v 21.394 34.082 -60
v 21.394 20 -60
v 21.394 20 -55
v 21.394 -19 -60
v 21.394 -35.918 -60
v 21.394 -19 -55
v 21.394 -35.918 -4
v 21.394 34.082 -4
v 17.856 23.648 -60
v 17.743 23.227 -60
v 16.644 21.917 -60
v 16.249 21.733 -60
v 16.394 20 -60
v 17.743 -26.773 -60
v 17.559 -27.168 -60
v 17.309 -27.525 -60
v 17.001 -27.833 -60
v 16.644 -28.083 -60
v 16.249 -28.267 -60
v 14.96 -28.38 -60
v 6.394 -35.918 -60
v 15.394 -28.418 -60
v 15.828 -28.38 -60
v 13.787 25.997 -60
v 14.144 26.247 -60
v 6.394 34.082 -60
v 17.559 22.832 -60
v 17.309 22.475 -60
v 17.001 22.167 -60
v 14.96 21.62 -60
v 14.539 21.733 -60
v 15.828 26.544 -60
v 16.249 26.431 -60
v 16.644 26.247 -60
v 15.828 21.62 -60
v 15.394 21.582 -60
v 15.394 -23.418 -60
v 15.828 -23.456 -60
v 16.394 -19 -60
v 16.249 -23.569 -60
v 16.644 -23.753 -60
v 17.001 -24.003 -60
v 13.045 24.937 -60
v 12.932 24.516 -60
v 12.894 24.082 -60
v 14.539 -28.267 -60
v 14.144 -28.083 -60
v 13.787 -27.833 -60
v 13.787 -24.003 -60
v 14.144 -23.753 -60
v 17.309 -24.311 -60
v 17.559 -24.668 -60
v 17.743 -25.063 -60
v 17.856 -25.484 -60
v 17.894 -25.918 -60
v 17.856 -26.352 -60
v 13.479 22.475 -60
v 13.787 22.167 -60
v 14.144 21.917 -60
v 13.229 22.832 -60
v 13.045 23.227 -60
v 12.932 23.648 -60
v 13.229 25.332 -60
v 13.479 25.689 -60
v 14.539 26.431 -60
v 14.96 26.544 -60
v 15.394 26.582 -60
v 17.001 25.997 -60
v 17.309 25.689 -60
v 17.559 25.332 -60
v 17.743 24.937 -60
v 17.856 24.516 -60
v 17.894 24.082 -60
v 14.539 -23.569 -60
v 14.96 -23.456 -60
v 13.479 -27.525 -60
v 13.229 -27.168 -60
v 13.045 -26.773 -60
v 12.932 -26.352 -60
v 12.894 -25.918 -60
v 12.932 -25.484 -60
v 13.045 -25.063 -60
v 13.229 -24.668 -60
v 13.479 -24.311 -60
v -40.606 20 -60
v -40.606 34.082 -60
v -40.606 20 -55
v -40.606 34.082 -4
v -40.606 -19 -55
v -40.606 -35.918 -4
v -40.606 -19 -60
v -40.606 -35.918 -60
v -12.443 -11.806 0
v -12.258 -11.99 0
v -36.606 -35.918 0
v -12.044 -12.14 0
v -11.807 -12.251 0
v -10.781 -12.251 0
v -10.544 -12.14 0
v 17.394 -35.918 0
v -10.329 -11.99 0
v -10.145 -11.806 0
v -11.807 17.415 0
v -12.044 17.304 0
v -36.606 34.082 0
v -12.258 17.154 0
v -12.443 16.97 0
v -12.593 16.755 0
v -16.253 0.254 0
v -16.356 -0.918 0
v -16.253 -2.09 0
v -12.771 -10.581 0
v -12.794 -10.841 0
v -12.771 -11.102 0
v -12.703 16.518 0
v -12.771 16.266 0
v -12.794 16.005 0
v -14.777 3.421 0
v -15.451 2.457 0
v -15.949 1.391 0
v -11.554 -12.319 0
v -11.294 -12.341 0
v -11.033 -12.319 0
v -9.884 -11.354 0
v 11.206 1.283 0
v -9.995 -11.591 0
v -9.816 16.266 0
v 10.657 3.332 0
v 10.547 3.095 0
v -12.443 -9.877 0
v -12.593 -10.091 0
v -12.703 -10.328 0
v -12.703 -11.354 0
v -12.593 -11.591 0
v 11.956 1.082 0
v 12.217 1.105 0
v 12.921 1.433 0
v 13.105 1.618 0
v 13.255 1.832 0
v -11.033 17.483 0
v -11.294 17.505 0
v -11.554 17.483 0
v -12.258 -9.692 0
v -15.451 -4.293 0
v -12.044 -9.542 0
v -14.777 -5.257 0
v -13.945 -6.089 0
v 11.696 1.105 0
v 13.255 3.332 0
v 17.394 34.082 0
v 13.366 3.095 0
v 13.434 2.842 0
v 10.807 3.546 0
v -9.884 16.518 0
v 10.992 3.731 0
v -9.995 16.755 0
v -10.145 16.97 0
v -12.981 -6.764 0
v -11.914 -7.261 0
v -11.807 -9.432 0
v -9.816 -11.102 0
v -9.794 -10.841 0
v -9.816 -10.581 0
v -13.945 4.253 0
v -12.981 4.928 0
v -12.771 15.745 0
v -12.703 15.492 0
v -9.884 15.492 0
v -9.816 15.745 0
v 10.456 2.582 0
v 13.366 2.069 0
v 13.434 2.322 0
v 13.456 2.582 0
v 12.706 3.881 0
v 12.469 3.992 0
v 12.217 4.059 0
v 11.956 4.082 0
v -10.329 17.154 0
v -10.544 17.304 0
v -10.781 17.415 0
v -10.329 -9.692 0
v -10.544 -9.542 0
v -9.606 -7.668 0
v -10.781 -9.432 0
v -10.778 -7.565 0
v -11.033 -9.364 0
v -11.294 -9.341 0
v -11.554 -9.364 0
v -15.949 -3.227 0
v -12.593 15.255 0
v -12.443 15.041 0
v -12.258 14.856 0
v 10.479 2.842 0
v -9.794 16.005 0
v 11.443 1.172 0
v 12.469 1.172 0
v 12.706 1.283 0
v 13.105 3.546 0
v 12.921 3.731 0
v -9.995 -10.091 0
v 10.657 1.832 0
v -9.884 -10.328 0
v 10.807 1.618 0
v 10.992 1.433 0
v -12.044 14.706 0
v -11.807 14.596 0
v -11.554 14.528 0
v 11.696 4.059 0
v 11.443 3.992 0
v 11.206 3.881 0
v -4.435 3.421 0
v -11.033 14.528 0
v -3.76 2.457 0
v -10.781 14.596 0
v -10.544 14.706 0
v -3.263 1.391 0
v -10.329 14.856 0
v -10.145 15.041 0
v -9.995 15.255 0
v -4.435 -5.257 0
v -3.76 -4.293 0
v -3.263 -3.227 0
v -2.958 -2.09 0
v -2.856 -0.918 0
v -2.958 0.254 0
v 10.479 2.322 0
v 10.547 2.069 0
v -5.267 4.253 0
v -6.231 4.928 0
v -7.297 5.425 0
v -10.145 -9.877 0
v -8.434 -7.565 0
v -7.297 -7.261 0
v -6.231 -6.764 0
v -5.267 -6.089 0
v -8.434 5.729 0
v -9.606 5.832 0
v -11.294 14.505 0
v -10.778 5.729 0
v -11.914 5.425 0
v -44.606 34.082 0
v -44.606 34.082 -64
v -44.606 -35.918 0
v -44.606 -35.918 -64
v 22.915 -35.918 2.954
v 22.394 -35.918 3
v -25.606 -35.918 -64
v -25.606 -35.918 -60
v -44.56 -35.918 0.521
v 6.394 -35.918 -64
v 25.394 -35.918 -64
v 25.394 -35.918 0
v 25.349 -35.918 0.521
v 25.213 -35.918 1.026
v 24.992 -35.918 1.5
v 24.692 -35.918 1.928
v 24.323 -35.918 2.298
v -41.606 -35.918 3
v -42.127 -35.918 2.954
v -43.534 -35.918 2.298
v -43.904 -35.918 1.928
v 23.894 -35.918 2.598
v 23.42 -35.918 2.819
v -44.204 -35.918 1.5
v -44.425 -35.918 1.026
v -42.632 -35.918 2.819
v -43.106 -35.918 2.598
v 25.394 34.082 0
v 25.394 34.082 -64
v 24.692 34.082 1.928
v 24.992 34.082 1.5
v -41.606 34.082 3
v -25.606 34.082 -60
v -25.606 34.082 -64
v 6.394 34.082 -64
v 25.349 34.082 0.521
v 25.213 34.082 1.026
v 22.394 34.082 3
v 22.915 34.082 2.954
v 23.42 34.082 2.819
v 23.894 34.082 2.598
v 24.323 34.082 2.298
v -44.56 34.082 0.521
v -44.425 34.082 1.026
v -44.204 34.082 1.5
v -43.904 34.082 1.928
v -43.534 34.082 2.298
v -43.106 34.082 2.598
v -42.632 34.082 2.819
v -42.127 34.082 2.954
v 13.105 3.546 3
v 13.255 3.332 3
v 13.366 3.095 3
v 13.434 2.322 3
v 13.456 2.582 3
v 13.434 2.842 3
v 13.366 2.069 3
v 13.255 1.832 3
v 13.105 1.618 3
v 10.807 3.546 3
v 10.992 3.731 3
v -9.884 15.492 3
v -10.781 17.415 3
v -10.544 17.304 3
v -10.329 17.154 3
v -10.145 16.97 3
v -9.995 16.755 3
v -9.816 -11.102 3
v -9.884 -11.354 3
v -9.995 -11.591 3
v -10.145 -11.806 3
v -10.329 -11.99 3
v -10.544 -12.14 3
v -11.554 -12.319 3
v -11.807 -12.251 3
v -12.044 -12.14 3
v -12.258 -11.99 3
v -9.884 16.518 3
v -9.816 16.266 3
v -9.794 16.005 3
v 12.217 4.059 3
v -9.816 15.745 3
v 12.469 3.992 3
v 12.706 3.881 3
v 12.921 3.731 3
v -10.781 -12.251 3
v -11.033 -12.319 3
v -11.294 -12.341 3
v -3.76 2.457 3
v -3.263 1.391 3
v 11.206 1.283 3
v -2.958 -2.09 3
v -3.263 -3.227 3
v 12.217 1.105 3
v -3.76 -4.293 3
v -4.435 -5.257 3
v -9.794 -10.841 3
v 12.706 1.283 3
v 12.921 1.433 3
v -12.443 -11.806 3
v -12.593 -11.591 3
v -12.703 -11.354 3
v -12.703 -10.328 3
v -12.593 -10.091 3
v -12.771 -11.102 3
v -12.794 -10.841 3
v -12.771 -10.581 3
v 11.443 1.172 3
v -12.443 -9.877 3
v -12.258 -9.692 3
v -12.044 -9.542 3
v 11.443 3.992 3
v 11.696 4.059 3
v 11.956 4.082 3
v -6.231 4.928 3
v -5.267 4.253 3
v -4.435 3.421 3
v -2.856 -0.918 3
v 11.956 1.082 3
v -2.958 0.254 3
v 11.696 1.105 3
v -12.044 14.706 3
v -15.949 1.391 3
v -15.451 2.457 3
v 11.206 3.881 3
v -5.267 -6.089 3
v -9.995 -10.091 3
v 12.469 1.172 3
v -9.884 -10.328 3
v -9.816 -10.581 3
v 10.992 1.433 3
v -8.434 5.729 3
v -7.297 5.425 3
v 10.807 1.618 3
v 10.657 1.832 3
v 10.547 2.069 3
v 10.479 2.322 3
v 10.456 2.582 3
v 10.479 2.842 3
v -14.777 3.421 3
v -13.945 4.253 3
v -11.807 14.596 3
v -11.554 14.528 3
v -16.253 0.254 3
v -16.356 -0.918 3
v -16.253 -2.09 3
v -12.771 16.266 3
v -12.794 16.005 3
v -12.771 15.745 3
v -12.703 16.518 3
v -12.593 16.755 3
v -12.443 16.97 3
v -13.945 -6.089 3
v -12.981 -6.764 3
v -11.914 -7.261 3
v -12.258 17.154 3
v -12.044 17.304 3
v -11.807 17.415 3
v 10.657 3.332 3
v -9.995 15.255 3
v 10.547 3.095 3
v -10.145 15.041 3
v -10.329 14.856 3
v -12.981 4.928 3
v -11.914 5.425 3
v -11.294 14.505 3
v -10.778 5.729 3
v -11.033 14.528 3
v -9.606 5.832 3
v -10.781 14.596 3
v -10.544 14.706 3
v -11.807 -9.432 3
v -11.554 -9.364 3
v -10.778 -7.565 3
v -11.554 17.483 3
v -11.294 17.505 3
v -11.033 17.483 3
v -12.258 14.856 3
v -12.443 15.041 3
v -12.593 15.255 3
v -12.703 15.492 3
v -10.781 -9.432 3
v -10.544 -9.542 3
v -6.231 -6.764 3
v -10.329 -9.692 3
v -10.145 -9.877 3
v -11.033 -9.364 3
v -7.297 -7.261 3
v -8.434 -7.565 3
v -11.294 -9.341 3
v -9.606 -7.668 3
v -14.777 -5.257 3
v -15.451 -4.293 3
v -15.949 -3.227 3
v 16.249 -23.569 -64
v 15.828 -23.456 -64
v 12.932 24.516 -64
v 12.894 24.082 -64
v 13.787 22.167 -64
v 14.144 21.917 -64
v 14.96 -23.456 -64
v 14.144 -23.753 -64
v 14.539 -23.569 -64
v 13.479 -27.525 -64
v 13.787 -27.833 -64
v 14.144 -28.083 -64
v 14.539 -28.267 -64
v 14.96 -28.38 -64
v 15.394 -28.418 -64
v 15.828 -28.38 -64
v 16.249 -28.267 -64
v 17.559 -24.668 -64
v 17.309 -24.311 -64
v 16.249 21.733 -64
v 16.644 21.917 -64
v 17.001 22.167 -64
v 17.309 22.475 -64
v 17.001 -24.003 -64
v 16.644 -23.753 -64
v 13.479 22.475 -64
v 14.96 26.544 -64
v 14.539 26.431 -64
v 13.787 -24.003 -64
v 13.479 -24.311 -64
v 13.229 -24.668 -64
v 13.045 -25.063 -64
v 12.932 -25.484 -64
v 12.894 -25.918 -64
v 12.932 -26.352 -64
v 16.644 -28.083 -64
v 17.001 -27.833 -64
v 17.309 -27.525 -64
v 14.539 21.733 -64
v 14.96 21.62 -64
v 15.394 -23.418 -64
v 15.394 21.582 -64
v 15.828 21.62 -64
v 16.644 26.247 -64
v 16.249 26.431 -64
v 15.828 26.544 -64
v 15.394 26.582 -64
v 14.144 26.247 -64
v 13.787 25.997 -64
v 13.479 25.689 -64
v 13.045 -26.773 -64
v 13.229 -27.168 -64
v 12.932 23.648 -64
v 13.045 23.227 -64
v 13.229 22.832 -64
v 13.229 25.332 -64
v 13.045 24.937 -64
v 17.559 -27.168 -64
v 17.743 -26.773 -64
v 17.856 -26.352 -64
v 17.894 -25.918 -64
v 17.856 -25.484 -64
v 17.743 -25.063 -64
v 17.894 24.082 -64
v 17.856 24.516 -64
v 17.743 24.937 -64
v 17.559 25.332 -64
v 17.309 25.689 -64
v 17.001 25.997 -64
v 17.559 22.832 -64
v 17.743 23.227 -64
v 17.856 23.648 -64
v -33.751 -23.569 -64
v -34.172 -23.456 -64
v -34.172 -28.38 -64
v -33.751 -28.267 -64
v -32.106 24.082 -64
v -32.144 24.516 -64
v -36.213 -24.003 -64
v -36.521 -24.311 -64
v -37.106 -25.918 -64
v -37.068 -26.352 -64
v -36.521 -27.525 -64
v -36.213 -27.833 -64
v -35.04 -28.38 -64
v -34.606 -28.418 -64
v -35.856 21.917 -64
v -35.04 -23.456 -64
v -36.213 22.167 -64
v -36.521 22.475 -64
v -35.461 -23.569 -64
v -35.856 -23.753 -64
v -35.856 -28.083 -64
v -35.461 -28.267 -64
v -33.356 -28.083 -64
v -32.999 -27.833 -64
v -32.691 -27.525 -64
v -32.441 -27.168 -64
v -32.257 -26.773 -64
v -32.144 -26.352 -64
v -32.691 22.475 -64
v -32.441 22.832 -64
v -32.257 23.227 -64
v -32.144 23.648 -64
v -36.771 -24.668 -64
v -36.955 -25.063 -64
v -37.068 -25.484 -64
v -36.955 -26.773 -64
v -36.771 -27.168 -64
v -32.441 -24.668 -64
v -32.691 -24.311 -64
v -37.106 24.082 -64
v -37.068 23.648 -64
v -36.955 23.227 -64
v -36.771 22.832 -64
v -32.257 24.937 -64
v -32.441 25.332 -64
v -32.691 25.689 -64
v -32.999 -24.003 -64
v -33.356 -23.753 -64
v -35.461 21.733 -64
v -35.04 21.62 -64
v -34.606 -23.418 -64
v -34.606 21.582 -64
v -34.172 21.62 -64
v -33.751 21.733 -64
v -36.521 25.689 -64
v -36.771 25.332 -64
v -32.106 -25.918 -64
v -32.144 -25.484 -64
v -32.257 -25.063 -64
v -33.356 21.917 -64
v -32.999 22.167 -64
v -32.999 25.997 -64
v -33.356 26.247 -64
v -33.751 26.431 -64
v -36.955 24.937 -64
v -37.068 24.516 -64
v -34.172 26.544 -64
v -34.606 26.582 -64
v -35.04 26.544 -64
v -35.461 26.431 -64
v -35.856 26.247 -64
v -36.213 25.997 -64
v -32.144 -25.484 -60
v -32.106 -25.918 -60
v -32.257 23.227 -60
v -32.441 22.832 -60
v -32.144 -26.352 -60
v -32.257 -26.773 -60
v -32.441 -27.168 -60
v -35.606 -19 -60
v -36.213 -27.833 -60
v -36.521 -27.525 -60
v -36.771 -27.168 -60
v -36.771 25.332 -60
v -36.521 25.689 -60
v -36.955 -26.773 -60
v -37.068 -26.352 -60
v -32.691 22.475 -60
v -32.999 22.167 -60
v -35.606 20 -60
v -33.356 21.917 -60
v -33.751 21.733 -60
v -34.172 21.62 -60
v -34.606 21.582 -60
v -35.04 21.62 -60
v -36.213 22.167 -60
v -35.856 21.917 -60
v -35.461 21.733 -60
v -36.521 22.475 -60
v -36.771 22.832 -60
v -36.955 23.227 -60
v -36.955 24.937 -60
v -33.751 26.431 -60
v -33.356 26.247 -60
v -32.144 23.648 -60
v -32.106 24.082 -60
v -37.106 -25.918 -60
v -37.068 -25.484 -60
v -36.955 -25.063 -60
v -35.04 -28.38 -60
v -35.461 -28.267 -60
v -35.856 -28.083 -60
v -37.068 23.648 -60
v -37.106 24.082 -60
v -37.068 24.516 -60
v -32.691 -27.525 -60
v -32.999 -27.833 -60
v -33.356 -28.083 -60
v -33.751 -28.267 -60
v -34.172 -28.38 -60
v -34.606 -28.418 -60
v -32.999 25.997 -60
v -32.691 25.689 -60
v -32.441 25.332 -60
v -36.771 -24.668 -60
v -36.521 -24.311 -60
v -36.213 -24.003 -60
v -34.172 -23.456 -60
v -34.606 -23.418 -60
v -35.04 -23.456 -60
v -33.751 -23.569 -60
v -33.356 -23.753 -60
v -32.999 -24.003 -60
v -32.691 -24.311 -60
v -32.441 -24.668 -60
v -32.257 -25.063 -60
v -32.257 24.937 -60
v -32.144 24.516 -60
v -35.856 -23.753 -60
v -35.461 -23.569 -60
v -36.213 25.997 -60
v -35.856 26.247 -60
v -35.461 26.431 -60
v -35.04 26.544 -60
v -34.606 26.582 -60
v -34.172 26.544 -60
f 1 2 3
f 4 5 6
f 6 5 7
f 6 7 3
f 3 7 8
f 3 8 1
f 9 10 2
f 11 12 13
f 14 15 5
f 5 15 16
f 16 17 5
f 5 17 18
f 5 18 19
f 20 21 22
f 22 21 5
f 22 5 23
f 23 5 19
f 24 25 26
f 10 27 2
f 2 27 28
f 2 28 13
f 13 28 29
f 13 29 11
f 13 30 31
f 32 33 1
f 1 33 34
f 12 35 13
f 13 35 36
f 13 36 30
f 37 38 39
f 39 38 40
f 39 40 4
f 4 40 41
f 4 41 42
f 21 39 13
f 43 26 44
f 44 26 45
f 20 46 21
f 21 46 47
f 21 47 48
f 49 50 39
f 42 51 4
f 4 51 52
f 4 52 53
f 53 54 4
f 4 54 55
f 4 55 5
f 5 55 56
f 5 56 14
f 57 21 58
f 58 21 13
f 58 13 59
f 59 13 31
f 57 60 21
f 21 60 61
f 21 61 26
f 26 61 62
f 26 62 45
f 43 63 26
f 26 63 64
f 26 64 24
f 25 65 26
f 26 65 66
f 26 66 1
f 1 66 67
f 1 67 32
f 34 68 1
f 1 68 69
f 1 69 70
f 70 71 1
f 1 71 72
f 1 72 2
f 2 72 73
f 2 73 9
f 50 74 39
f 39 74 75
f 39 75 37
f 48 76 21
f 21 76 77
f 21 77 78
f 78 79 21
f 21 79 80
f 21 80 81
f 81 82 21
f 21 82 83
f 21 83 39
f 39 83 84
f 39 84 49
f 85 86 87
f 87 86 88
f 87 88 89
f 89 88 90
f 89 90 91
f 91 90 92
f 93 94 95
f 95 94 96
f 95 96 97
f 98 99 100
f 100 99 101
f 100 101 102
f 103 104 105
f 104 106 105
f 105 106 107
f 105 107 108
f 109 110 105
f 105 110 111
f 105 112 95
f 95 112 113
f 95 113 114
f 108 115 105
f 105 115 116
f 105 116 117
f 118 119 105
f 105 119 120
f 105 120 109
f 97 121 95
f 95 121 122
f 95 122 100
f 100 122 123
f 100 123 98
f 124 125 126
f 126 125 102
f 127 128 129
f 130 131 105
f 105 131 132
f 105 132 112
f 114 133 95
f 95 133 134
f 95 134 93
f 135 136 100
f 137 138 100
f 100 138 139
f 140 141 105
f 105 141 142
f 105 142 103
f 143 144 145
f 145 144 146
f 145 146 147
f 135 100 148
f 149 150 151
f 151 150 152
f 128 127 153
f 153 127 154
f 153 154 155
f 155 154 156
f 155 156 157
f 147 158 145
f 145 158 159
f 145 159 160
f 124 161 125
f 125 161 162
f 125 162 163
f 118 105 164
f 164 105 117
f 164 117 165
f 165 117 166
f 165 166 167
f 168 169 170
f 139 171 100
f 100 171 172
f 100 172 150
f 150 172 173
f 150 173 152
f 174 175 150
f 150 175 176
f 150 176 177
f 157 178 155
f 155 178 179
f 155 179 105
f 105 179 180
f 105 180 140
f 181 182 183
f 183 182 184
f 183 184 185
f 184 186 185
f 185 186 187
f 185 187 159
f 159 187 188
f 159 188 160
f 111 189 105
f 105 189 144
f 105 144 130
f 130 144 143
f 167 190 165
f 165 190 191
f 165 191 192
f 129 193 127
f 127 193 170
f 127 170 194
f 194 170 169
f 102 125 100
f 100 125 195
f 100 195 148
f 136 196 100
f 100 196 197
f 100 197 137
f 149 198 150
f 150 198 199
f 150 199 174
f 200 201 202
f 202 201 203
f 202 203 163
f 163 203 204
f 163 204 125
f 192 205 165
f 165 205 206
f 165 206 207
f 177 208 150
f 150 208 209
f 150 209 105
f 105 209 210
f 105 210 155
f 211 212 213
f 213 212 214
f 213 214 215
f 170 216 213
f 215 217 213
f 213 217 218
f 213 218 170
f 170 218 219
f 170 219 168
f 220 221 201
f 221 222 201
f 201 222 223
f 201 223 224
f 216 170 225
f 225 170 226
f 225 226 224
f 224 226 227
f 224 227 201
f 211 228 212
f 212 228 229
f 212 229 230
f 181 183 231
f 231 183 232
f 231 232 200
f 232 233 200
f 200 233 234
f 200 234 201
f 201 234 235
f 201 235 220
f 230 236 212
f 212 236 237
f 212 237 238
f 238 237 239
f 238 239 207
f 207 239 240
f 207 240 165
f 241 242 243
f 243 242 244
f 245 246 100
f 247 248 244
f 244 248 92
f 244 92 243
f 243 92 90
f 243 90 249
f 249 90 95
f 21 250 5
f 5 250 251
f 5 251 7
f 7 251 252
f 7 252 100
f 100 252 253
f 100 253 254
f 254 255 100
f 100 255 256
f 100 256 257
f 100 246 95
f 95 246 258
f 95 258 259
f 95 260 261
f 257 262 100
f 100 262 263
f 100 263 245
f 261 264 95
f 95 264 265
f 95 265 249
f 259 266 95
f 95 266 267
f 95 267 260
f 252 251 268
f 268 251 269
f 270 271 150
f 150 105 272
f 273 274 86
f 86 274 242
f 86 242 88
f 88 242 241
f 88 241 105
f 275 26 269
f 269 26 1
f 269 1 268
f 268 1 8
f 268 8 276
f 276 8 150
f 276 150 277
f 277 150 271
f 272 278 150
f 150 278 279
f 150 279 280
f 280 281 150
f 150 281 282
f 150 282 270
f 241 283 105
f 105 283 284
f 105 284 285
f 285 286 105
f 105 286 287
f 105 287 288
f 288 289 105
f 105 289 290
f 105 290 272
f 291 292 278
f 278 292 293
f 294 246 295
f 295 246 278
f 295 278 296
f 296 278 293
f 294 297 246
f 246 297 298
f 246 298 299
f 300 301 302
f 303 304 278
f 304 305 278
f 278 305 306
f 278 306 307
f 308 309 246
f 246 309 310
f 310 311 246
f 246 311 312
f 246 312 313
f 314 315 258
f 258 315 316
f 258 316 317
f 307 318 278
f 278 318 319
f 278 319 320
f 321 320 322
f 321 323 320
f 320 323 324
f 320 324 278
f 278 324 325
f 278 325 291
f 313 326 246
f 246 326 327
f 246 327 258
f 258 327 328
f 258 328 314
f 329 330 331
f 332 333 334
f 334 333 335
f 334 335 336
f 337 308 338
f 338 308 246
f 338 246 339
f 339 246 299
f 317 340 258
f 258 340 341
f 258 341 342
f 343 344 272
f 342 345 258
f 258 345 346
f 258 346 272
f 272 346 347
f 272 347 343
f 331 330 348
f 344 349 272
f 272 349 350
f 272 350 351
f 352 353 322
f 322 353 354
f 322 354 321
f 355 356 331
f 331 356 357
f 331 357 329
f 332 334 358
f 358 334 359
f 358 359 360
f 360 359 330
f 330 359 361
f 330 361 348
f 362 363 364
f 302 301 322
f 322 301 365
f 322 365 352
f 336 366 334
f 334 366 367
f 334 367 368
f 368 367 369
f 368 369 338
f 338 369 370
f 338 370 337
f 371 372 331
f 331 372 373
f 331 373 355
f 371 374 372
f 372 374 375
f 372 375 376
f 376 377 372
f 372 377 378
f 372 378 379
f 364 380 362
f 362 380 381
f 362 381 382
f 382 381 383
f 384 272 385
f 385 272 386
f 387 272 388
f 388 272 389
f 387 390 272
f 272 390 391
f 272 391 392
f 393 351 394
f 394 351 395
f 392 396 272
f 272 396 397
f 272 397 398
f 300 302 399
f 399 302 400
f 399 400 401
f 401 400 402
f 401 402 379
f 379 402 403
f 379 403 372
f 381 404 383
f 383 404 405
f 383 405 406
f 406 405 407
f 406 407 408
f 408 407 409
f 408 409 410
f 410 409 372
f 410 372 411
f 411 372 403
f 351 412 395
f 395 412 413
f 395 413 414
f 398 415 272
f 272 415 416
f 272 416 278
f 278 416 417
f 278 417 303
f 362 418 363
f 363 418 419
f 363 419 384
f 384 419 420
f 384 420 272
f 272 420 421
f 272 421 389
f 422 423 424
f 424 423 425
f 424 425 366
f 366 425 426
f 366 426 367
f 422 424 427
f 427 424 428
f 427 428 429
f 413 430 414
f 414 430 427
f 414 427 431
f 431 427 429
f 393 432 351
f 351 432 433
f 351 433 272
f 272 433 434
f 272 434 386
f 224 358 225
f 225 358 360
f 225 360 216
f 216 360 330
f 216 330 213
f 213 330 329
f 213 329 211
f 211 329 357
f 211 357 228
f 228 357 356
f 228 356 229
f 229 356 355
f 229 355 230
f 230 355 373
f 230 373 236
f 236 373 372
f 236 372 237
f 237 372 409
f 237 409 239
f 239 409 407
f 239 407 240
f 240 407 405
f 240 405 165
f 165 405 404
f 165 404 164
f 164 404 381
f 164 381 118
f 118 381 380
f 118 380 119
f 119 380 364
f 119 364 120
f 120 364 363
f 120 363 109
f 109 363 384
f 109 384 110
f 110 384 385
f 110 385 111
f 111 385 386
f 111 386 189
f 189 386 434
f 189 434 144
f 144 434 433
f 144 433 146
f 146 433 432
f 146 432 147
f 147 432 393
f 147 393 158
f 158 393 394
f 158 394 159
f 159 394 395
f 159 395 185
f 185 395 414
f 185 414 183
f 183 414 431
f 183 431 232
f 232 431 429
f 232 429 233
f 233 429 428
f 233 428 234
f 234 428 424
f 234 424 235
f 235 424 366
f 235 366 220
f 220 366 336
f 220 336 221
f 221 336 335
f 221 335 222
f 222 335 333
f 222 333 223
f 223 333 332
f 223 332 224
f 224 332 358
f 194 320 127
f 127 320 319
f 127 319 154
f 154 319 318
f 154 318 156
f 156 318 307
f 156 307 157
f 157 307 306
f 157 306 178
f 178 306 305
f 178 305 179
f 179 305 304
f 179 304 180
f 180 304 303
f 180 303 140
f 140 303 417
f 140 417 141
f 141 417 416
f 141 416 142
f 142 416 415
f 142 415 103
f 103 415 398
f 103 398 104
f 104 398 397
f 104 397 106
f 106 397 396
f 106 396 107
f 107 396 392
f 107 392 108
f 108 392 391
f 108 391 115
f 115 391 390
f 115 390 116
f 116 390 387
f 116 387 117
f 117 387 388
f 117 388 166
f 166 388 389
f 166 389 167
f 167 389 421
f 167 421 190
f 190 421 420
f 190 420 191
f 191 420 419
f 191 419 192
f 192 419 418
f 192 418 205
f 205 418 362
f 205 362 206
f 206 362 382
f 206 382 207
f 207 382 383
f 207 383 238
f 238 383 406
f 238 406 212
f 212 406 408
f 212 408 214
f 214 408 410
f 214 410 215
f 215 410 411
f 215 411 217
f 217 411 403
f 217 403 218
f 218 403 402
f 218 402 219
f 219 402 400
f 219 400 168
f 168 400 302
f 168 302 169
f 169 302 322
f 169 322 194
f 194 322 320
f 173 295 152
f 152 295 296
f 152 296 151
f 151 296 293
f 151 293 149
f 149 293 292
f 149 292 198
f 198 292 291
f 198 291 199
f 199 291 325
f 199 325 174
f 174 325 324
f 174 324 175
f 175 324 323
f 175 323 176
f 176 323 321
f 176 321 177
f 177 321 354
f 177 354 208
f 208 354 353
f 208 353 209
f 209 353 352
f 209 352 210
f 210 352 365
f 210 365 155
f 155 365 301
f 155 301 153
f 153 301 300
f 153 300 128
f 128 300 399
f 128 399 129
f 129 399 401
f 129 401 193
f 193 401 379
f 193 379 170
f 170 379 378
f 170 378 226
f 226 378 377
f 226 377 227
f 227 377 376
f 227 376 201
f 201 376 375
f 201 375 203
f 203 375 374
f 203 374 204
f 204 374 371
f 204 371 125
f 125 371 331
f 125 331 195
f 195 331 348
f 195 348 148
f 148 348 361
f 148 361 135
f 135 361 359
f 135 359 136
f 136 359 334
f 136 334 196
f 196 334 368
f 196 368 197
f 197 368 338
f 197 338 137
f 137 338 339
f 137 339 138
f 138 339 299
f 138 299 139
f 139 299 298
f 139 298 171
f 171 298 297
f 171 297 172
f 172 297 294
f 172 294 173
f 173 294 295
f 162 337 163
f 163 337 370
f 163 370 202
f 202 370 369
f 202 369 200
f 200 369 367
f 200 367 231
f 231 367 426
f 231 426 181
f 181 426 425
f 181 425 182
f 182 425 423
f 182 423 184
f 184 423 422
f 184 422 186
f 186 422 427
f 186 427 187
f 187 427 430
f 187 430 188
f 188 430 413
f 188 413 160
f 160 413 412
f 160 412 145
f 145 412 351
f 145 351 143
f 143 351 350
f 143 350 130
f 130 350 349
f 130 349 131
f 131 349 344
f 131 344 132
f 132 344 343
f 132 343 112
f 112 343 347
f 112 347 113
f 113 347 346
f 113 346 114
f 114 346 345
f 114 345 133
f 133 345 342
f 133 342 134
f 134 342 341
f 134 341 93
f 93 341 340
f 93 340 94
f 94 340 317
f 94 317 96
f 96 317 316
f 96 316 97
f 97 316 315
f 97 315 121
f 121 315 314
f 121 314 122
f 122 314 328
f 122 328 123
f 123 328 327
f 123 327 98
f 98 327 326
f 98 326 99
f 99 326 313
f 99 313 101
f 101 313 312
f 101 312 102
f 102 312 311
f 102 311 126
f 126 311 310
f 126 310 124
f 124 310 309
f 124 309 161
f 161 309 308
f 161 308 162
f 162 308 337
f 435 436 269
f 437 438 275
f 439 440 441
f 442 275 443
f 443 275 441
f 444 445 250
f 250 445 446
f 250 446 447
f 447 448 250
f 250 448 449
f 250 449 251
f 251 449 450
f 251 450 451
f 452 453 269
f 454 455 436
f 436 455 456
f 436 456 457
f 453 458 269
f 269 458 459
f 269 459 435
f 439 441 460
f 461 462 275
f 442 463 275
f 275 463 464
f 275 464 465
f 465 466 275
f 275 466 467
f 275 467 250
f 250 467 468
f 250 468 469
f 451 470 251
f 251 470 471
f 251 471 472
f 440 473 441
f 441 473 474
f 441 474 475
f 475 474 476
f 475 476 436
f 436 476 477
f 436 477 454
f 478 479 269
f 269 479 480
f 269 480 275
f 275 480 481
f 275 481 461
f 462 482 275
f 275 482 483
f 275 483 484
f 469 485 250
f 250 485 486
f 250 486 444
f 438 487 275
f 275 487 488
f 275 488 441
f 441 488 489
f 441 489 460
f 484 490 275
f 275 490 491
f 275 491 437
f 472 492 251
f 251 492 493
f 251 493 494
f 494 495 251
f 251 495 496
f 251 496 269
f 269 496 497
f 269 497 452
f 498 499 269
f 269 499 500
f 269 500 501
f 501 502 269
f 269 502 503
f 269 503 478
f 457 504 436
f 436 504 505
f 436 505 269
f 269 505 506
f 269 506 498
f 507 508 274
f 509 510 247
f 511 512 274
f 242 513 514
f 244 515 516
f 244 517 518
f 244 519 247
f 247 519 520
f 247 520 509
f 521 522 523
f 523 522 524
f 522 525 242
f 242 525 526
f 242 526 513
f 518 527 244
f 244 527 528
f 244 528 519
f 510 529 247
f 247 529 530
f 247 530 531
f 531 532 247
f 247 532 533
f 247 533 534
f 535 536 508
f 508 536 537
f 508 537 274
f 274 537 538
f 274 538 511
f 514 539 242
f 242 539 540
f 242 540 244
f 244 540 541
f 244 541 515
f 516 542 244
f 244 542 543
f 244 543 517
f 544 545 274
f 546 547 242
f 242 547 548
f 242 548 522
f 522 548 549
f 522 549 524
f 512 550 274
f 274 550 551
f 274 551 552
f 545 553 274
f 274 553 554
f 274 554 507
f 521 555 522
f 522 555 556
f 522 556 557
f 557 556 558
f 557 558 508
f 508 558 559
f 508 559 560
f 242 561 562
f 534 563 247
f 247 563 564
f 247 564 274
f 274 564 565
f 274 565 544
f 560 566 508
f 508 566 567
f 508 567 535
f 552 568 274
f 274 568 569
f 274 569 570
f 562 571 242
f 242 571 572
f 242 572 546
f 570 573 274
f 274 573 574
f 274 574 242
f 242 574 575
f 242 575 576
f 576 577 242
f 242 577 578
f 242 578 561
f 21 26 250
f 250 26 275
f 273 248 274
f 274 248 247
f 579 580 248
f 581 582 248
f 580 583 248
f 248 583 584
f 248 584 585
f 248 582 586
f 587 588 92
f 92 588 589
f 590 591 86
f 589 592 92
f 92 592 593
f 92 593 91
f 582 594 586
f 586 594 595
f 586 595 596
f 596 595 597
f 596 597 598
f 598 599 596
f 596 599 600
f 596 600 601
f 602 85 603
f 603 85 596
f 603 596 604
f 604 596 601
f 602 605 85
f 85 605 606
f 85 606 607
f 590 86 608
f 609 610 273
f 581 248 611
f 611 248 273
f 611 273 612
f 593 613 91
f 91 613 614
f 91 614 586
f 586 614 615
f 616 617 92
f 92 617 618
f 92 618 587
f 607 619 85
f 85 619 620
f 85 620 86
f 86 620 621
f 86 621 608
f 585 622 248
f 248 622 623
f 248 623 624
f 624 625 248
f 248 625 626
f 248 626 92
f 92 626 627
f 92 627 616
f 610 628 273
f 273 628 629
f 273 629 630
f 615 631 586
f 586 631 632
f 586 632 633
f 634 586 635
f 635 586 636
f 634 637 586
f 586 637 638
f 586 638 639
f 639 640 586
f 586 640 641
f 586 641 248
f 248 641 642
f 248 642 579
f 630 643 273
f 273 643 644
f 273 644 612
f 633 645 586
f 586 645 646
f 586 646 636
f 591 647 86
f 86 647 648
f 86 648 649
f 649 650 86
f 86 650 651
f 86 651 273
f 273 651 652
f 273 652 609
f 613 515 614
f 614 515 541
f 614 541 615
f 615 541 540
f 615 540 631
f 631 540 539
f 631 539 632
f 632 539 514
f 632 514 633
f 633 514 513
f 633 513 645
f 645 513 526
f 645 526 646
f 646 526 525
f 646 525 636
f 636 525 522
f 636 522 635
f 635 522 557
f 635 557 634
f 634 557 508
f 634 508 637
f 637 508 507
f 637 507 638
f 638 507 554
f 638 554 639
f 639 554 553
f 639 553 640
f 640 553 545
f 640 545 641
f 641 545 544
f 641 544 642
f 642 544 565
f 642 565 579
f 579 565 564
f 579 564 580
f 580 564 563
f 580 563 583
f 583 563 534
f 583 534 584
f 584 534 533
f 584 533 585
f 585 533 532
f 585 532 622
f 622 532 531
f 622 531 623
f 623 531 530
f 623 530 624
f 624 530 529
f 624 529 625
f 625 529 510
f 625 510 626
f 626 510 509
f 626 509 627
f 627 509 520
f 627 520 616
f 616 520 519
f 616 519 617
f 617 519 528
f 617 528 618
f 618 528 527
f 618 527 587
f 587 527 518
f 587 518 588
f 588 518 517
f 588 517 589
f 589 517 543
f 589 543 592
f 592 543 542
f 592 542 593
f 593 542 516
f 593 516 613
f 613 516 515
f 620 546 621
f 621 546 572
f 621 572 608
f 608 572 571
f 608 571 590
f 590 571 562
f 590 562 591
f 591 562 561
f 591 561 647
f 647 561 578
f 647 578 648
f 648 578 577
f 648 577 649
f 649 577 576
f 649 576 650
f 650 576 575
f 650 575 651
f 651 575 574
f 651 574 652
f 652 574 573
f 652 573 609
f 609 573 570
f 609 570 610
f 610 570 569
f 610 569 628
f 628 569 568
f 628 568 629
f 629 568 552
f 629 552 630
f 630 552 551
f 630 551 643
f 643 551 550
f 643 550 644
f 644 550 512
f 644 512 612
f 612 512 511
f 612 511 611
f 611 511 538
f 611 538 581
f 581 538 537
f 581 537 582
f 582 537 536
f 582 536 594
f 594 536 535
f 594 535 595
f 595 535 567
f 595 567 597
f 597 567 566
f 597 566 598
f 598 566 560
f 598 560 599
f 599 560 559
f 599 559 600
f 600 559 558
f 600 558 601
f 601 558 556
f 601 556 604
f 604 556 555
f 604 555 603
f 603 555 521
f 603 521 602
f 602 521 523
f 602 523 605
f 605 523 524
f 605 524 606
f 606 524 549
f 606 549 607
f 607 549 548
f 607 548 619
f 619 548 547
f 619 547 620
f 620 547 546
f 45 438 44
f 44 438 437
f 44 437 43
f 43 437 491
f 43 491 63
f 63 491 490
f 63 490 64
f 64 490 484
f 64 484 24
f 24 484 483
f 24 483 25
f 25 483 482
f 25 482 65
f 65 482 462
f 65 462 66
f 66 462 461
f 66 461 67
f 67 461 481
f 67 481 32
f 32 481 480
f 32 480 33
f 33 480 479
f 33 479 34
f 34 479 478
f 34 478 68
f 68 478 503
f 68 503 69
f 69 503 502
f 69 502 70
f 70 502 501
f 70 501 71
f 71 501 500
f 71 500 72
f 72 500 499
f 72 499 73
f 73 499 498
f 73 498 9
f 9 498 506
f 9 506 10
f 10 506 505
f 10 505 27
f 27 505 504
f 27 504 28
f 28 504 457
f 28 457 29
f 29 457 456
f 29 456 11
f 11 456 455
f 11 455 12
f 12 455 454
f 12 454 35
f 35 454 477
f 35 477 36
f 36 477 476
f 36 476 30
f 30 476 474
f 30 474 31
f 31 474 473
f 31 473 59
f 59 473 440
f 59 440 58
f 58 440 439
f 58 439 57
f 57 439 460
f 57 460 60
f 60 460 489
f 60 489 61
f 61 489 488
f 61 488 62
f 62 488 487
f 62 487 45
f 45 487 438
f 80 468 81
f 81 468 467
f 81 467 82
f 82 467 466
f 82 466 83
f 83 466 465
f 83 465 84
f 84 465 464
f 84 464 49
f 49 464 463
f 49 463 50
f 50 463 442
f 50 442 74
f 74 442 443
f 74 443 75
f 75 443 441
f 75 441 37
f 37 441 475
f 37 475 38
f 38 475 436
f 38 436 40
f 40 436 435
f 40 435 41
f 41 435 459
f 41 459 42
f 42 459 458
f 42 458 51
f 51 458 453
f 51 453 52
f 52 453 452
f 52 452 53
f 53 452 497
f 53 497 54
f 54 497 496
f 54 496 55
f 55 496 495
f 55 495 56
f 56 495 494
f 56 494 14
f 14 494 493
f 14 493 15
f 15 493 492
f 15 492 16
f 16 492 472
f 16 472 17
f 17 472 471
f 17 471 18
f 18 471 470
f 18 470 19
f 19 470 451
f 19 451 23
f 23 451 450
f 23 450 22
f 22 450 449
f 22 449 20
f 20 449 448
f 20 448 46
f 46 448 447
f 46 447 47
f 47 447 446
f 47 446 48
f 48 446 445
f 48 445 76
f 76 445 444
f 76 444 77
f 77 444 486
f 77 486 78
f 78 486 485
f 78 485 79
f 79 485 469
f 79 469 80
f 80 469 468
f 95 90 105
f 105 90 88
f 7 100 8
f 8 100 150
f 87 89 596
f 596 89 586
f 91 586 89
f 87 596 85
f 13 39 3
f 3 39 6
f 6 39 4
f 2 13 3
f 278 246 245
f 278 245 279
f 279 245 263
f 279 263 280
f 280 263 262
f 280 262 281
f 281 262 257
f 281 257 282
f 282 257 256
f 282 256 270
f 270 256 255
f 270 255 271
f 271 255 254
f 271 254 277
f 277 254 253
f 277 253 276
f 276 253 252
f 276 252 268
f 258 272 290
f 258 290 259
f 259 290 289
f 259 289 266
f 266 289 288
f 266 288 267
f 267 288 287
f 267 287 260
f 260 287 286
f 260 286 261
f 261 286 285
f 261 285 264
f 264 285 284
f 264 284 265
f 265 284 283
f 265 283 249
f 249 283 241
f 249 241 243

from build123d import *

# Parameters (mm, degrees)
SKETCH1_W                = 70
SKETCH1_H                = 70
BOSS_EXTRUDE2_DEPTH      = 3
SKETCH2_R                = 6.75
SKETCH2_R_2              = 1.5
CUT_EXTRUDE1_DEPTH       = 4
SKETCH3_W                = 64
SKETCH3_H                = 70
BOSS_EXTRUDE3_DEPTH      = 4
SKETCH4_W                = 64
SKETCH4_H                = 70
BOSS_EXTRUDE4_DEPTH      = 4
SKETCH5_W                = 15
SKETCH5_H                = 70
BOSS_EXTRUDE5_DEPTH      = 4
SKETCH6_R                = 2.5
CUT_EXTRUDE2_DEPTH       = 4
BOSS_EXTRUDE6_DEPTH      = 70
BOSS_EXTRUDE7_DEPTH      = 20
BOSS_EXTRUDE7_DEPTH_BACK = 19
FILLET1_R                = 3


with BuildPart() as part:
    # Sketch1 → Boss-Extrude2 (new body)
    with BuildSketch(Plane.XY):
        with Locations((-9.605752423, -0.918004132)):
            Rectangle(SKETCH1_W, SKETCH1_H)
    extrude(amount=BOSS_EXTRUDE2_DEPTH)

    # Sketch2 → Cut-Extrude1 (cut)
    with BuildSketch(Plane.XY.offset(3)):
        with Locations((-9.605752423, -0.918004132)):
            Circle(SKETCH2_R)
        with Locations((-11.293574597, 16.005389627)):
            Circle(SKETCH2_R_2)
        with Locations((11.956425403, 2.581995868)):
            Circle(SKETCH2_R_2)
        with Locations((-11.293574597, -10.84139789)):
            Circle(SKETCH2_R_2)
    extrude(amount=-CUT_EXTRUDE1_DEPTH, mode=Mode.SUBTRACT)

    # Sketch3 → Boss-Extrude3 (add)
    with BuildSketch(Plane(origin=(25.394247577, 0, 0), x_dir=(0, 0, -1), z_dir=(1, 0, 0))):
        with Locations((32, -0.918004132)):
            Rectangle(SKETCH3_W, SKETCH3_H)
    extrude(amount=-BOSS_EXTRUDE3_DEPTH)

    # Sketch4 → Boss-Extrude4 (add)
    with BuildSketch(Plane.ZY.offset(44.605752423)):
        with Locations((-32, -0.918004132)):
            Rectangle(SKETCH4_W, SKETCH4_H)
    extrude(amount=-BOSS_EXTRUDE4_DEPTH)

    # Sketch5 → Boss-Extrude5 (add)
    with BuildSketch(Plane(origin=(0, 0, -64), x_dir=(-1, 0, 0), z_dir=(0, 0, -1))):
        with Locations((-13.894247577, -0.918004132)):
            Rectangle(SKETCH5_W, SKETCH5_H)
        with Locations((33.105752423, -0.918004132)):
            Rectangle(SKETCH5_W, SKETCH5_H)
    extrude(amount=-BOSS_EXTRUDE5_DEPTH)

    # Sketch6 → Cut-Extrude2 (cut)
    with BuildSketch(Plane(origin=(0, 0, -64), x_dir=(-1, 0, 0), z_dir=(0, 0, -1))):
        with Locations((-15.394247577, 24.081995868)):
            Circle(SKETCH6_R)
        with Locations((-15.394247577, -25.918004132)):
            Circle(SKETCH6_R)
        with Locations((34.605752423, 24.081995868)):
            Circle(SKETCH6_R)
        with Locations((34.605752423, -25.918004132)):
            Circle(SKETCH6_R)
    extrude(amount=-CUT_EXTRUDE2_DEPTH, mode=Mode.SUBTRACT)

    # Sketch7 → Boss-Extrude6 (add)
    with BuildSketch(Plane(origin=(0, 34.081995868, 0), x_dir=(1, 0, 0), z_dir=(0, 1, 0))):
        Polygon((-40.605752423, 0), (-40.605752423, 4), (-36.605752423, 0), align=None)
        Polygon((21.394247577, 0), (21.394247577, 4), (17.394247577, 0), align=None)
    extrude(amount=-BOSS_EXTRUDE6_DEPTH)

    # Sketch8 → Boss-Extrude7 (add, two sides: drawn at the far end of the back side and taken through both)
    with BuildSketch(Plane(origin=(0, 0, 0), x_dir=(1, 0, 0), z_dir=(0, 1, 0)).offset(-BOSS_EXTRUDE7_DEPTH_BACK)):
        Polygon((-40.605752423, 60), (-35.605752423, 60), (-40.605752423, 55), align=None)
        Polygon((21.394247577, 60), (16.394247577, 60), (21.394247577, 55), align=None)
    extrude(amount=BOSS_EXTRUDE7_DEPTH + BOSS_EXTRUDE7_DEPTH_BACK)

    # Fillet1
    fillet1_edges = [part.edges().sort_by_distance(p)[0] for p in [
        (25.394247577, -0.918004132, 3),
        (-44.605752423, -0.918004132, 3),
    ]]
    fillet(fillet1_edges, radius=FILLET1_R)


solid = part.part
